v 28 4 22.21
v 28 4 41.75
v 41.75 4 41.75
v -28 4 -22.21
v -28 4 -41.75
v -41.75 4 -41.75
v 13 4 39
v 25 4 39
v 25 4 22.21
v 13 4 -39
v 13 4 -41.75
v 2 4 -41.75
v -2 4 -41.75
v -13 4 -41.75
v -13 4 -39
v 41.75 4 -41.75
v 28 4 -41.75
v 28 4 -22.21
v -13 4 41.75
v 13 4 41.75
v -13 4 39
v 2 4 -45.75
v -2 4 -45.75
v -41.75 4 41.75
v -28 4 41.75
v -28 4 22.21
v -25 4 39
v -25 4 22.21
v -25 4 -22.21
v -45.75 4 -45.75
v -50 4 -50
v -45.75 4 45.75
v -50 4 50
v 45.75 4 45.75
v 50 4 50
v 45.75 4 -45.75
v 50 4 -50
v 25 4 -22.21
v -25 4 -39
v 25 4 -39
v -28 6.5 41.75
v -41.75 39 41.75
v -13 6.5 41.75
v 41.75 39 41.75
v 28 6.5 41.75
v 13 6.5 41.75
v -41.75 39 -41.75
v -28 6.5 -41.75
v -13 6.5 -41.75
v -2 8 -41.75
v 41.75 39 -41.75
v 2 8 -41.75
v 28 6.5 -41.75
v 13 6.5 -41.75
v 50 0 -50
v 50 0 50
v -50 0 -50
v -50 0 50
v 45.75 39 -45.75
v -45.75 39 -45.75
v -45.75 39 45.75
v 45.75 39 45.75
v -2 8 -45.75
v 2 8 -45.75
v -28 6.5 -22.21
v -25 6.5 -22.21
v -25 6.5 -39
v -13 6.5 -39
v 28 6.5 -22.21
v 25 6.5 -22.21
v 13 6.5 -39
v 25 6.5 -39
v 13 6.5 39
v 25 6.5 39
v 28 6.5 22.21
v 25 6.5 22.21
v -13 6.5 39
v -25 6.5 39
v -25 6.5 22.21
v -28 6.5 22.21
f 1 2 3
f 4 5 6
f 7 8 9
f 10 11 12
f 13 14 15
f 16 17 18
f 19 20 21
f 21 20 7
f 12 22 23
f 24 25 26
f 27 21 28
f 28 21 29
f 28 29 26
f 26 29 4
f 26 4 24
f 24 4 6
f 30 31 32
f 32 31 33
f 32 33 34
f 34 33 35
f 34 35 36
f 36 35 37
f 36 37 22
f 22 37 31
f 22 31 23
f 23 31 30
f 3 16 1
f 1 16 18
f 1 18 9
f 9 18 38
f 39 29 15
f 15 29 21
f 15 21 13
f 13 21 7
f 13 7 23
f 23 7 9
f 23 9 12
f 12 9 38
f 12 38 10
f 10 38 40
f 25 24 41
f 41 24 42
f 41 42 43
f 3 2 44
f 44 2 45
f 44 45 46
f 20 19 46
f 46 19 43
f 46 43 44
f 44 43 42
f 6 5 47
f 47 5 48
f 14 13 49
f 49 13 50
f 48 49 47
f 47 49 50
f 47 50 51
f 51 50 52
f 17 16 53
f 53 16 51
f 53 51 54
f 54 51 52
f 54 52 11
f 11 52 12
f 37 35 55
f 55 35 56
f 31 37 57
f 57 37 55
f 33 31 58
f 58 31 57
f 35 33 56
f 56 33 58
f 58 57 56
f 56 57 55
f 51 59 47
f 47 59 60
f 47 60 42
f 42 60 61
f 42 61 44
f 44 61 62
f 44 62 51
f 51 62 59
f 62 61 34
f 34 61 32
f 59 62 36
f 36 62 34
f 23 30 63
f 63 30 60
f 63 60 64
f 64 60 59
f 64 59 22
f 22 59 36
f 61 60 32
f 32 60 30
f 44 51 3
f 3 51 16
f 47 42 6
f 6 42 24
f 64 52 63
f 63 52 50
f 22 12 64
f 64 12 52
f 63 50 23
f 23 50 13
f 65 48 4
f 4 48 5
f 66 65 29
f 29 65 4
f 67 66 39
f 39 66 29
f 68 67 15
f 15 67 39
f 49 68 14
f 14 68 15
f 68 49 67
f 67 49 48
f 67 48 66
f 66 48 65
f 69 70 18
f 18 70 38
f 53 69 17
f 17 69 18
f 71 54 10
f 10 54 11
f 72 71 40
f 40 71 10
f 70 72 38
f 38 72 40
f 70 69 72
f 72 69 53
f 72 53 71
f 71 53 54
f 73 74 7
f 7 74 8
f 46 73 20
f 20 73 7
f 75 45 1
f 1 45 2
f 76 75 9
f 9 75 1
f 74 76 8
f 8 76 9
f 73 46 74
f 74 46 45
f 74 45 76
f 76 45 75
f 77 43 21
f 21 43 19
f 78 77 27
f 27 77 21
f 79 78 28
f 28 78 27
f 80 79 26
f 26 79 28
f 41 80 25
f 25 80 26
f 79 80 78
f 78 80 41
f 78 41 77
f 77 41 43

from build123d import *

# Parameters (mm, degrees)
SKETCH1_W           = 100
SKETCH1_H           = 100
BOSS_EXTRUDE1_DEPTH = 4
SKETCH2_W           = 91.5
SKETCH2_H           = 91.5
SKETCH2_W_2         = 83.5
SKETCH2_H_2         = 83.5
BOSS_EXTRUDE2_DEPTH = 35
SKETCH3_W           = 4
SKETCH3_H           = 4
CUT_EXTRUDE1_DEPTH  = 4
BOSS_EXTRUDE3_DEPTH = 2.5


with BuildPart() as part:
    # Sketch1 → Boss-Extrude1 (new body)
    with BuildSketch(Plane(origin=(0, 0, 0), x_dir=(1, 0, 0), z_dir=(0, 1, 0))):
        Rectangle(SKETCH1_W, SKETCH1_H)
    extrude(amount=BOSS_EXTRUDE1_DEPTH)

    # Sketch2 → Boss-Extrude2 (add)
    with BuildSketch(Plane(origin=(0, 4, 0), x_dir=(1, 0, 0), z_dir=(0, 1, 0))):
        Rectangle(SKETCH2_W, SKETCH2_H)
        Rectangle(SKETCH2_W_2, SKETCH2_H_2, mode=Mode.SUBTRACT)
    extrude(amount=BOSS_EXTRUDE2_DEPTH)

    # Sketch3 → Cut-Extrude1 (cut)
    with BuildSketch(Plane(origin=(0, 0, -45.75), x_dir=(-1, 0, 0), z_dir=(0, 0, -1))):
        with Locations((0, 6)):
            Rectangle(SKETCH3_W, SKETCH3_H)
    extrude(amount=-CUT_EXTRUDE1_DEPTH, mode=Mode.SUBTRACT)

    # Sketch4 → Boss-Extrude3 (add)
    with BuildSketch(Plane(origin=(0, 4, 0), x_dir=(1, 0, 0), z_dir=(0, 1, 0))):
        Polygon((-28, 22.21), (-25, 22.21), (-25, 39), (-13, 39), (-13, 41.75), (-28, 41.75), align=None)
        Polygon((25, 39), (25, 22.21), (28, 22.21), (28, 41.75), (13, 41.75), (13, 39), align=None)
        Polygon((25, -39), (13, -39), (13, -41.75), (28, -41.75), (28, -22.21), (25, -22.21), align=None)
        Polygon((-13, -39), (-25, -39), (-25, -22.21), (-28, -22.21), (-28, -41.75), (-13, -41.75), align=None)
    extrude(amount=BOSS_EXTRUDE3_DEPTH)


solid = part.part
